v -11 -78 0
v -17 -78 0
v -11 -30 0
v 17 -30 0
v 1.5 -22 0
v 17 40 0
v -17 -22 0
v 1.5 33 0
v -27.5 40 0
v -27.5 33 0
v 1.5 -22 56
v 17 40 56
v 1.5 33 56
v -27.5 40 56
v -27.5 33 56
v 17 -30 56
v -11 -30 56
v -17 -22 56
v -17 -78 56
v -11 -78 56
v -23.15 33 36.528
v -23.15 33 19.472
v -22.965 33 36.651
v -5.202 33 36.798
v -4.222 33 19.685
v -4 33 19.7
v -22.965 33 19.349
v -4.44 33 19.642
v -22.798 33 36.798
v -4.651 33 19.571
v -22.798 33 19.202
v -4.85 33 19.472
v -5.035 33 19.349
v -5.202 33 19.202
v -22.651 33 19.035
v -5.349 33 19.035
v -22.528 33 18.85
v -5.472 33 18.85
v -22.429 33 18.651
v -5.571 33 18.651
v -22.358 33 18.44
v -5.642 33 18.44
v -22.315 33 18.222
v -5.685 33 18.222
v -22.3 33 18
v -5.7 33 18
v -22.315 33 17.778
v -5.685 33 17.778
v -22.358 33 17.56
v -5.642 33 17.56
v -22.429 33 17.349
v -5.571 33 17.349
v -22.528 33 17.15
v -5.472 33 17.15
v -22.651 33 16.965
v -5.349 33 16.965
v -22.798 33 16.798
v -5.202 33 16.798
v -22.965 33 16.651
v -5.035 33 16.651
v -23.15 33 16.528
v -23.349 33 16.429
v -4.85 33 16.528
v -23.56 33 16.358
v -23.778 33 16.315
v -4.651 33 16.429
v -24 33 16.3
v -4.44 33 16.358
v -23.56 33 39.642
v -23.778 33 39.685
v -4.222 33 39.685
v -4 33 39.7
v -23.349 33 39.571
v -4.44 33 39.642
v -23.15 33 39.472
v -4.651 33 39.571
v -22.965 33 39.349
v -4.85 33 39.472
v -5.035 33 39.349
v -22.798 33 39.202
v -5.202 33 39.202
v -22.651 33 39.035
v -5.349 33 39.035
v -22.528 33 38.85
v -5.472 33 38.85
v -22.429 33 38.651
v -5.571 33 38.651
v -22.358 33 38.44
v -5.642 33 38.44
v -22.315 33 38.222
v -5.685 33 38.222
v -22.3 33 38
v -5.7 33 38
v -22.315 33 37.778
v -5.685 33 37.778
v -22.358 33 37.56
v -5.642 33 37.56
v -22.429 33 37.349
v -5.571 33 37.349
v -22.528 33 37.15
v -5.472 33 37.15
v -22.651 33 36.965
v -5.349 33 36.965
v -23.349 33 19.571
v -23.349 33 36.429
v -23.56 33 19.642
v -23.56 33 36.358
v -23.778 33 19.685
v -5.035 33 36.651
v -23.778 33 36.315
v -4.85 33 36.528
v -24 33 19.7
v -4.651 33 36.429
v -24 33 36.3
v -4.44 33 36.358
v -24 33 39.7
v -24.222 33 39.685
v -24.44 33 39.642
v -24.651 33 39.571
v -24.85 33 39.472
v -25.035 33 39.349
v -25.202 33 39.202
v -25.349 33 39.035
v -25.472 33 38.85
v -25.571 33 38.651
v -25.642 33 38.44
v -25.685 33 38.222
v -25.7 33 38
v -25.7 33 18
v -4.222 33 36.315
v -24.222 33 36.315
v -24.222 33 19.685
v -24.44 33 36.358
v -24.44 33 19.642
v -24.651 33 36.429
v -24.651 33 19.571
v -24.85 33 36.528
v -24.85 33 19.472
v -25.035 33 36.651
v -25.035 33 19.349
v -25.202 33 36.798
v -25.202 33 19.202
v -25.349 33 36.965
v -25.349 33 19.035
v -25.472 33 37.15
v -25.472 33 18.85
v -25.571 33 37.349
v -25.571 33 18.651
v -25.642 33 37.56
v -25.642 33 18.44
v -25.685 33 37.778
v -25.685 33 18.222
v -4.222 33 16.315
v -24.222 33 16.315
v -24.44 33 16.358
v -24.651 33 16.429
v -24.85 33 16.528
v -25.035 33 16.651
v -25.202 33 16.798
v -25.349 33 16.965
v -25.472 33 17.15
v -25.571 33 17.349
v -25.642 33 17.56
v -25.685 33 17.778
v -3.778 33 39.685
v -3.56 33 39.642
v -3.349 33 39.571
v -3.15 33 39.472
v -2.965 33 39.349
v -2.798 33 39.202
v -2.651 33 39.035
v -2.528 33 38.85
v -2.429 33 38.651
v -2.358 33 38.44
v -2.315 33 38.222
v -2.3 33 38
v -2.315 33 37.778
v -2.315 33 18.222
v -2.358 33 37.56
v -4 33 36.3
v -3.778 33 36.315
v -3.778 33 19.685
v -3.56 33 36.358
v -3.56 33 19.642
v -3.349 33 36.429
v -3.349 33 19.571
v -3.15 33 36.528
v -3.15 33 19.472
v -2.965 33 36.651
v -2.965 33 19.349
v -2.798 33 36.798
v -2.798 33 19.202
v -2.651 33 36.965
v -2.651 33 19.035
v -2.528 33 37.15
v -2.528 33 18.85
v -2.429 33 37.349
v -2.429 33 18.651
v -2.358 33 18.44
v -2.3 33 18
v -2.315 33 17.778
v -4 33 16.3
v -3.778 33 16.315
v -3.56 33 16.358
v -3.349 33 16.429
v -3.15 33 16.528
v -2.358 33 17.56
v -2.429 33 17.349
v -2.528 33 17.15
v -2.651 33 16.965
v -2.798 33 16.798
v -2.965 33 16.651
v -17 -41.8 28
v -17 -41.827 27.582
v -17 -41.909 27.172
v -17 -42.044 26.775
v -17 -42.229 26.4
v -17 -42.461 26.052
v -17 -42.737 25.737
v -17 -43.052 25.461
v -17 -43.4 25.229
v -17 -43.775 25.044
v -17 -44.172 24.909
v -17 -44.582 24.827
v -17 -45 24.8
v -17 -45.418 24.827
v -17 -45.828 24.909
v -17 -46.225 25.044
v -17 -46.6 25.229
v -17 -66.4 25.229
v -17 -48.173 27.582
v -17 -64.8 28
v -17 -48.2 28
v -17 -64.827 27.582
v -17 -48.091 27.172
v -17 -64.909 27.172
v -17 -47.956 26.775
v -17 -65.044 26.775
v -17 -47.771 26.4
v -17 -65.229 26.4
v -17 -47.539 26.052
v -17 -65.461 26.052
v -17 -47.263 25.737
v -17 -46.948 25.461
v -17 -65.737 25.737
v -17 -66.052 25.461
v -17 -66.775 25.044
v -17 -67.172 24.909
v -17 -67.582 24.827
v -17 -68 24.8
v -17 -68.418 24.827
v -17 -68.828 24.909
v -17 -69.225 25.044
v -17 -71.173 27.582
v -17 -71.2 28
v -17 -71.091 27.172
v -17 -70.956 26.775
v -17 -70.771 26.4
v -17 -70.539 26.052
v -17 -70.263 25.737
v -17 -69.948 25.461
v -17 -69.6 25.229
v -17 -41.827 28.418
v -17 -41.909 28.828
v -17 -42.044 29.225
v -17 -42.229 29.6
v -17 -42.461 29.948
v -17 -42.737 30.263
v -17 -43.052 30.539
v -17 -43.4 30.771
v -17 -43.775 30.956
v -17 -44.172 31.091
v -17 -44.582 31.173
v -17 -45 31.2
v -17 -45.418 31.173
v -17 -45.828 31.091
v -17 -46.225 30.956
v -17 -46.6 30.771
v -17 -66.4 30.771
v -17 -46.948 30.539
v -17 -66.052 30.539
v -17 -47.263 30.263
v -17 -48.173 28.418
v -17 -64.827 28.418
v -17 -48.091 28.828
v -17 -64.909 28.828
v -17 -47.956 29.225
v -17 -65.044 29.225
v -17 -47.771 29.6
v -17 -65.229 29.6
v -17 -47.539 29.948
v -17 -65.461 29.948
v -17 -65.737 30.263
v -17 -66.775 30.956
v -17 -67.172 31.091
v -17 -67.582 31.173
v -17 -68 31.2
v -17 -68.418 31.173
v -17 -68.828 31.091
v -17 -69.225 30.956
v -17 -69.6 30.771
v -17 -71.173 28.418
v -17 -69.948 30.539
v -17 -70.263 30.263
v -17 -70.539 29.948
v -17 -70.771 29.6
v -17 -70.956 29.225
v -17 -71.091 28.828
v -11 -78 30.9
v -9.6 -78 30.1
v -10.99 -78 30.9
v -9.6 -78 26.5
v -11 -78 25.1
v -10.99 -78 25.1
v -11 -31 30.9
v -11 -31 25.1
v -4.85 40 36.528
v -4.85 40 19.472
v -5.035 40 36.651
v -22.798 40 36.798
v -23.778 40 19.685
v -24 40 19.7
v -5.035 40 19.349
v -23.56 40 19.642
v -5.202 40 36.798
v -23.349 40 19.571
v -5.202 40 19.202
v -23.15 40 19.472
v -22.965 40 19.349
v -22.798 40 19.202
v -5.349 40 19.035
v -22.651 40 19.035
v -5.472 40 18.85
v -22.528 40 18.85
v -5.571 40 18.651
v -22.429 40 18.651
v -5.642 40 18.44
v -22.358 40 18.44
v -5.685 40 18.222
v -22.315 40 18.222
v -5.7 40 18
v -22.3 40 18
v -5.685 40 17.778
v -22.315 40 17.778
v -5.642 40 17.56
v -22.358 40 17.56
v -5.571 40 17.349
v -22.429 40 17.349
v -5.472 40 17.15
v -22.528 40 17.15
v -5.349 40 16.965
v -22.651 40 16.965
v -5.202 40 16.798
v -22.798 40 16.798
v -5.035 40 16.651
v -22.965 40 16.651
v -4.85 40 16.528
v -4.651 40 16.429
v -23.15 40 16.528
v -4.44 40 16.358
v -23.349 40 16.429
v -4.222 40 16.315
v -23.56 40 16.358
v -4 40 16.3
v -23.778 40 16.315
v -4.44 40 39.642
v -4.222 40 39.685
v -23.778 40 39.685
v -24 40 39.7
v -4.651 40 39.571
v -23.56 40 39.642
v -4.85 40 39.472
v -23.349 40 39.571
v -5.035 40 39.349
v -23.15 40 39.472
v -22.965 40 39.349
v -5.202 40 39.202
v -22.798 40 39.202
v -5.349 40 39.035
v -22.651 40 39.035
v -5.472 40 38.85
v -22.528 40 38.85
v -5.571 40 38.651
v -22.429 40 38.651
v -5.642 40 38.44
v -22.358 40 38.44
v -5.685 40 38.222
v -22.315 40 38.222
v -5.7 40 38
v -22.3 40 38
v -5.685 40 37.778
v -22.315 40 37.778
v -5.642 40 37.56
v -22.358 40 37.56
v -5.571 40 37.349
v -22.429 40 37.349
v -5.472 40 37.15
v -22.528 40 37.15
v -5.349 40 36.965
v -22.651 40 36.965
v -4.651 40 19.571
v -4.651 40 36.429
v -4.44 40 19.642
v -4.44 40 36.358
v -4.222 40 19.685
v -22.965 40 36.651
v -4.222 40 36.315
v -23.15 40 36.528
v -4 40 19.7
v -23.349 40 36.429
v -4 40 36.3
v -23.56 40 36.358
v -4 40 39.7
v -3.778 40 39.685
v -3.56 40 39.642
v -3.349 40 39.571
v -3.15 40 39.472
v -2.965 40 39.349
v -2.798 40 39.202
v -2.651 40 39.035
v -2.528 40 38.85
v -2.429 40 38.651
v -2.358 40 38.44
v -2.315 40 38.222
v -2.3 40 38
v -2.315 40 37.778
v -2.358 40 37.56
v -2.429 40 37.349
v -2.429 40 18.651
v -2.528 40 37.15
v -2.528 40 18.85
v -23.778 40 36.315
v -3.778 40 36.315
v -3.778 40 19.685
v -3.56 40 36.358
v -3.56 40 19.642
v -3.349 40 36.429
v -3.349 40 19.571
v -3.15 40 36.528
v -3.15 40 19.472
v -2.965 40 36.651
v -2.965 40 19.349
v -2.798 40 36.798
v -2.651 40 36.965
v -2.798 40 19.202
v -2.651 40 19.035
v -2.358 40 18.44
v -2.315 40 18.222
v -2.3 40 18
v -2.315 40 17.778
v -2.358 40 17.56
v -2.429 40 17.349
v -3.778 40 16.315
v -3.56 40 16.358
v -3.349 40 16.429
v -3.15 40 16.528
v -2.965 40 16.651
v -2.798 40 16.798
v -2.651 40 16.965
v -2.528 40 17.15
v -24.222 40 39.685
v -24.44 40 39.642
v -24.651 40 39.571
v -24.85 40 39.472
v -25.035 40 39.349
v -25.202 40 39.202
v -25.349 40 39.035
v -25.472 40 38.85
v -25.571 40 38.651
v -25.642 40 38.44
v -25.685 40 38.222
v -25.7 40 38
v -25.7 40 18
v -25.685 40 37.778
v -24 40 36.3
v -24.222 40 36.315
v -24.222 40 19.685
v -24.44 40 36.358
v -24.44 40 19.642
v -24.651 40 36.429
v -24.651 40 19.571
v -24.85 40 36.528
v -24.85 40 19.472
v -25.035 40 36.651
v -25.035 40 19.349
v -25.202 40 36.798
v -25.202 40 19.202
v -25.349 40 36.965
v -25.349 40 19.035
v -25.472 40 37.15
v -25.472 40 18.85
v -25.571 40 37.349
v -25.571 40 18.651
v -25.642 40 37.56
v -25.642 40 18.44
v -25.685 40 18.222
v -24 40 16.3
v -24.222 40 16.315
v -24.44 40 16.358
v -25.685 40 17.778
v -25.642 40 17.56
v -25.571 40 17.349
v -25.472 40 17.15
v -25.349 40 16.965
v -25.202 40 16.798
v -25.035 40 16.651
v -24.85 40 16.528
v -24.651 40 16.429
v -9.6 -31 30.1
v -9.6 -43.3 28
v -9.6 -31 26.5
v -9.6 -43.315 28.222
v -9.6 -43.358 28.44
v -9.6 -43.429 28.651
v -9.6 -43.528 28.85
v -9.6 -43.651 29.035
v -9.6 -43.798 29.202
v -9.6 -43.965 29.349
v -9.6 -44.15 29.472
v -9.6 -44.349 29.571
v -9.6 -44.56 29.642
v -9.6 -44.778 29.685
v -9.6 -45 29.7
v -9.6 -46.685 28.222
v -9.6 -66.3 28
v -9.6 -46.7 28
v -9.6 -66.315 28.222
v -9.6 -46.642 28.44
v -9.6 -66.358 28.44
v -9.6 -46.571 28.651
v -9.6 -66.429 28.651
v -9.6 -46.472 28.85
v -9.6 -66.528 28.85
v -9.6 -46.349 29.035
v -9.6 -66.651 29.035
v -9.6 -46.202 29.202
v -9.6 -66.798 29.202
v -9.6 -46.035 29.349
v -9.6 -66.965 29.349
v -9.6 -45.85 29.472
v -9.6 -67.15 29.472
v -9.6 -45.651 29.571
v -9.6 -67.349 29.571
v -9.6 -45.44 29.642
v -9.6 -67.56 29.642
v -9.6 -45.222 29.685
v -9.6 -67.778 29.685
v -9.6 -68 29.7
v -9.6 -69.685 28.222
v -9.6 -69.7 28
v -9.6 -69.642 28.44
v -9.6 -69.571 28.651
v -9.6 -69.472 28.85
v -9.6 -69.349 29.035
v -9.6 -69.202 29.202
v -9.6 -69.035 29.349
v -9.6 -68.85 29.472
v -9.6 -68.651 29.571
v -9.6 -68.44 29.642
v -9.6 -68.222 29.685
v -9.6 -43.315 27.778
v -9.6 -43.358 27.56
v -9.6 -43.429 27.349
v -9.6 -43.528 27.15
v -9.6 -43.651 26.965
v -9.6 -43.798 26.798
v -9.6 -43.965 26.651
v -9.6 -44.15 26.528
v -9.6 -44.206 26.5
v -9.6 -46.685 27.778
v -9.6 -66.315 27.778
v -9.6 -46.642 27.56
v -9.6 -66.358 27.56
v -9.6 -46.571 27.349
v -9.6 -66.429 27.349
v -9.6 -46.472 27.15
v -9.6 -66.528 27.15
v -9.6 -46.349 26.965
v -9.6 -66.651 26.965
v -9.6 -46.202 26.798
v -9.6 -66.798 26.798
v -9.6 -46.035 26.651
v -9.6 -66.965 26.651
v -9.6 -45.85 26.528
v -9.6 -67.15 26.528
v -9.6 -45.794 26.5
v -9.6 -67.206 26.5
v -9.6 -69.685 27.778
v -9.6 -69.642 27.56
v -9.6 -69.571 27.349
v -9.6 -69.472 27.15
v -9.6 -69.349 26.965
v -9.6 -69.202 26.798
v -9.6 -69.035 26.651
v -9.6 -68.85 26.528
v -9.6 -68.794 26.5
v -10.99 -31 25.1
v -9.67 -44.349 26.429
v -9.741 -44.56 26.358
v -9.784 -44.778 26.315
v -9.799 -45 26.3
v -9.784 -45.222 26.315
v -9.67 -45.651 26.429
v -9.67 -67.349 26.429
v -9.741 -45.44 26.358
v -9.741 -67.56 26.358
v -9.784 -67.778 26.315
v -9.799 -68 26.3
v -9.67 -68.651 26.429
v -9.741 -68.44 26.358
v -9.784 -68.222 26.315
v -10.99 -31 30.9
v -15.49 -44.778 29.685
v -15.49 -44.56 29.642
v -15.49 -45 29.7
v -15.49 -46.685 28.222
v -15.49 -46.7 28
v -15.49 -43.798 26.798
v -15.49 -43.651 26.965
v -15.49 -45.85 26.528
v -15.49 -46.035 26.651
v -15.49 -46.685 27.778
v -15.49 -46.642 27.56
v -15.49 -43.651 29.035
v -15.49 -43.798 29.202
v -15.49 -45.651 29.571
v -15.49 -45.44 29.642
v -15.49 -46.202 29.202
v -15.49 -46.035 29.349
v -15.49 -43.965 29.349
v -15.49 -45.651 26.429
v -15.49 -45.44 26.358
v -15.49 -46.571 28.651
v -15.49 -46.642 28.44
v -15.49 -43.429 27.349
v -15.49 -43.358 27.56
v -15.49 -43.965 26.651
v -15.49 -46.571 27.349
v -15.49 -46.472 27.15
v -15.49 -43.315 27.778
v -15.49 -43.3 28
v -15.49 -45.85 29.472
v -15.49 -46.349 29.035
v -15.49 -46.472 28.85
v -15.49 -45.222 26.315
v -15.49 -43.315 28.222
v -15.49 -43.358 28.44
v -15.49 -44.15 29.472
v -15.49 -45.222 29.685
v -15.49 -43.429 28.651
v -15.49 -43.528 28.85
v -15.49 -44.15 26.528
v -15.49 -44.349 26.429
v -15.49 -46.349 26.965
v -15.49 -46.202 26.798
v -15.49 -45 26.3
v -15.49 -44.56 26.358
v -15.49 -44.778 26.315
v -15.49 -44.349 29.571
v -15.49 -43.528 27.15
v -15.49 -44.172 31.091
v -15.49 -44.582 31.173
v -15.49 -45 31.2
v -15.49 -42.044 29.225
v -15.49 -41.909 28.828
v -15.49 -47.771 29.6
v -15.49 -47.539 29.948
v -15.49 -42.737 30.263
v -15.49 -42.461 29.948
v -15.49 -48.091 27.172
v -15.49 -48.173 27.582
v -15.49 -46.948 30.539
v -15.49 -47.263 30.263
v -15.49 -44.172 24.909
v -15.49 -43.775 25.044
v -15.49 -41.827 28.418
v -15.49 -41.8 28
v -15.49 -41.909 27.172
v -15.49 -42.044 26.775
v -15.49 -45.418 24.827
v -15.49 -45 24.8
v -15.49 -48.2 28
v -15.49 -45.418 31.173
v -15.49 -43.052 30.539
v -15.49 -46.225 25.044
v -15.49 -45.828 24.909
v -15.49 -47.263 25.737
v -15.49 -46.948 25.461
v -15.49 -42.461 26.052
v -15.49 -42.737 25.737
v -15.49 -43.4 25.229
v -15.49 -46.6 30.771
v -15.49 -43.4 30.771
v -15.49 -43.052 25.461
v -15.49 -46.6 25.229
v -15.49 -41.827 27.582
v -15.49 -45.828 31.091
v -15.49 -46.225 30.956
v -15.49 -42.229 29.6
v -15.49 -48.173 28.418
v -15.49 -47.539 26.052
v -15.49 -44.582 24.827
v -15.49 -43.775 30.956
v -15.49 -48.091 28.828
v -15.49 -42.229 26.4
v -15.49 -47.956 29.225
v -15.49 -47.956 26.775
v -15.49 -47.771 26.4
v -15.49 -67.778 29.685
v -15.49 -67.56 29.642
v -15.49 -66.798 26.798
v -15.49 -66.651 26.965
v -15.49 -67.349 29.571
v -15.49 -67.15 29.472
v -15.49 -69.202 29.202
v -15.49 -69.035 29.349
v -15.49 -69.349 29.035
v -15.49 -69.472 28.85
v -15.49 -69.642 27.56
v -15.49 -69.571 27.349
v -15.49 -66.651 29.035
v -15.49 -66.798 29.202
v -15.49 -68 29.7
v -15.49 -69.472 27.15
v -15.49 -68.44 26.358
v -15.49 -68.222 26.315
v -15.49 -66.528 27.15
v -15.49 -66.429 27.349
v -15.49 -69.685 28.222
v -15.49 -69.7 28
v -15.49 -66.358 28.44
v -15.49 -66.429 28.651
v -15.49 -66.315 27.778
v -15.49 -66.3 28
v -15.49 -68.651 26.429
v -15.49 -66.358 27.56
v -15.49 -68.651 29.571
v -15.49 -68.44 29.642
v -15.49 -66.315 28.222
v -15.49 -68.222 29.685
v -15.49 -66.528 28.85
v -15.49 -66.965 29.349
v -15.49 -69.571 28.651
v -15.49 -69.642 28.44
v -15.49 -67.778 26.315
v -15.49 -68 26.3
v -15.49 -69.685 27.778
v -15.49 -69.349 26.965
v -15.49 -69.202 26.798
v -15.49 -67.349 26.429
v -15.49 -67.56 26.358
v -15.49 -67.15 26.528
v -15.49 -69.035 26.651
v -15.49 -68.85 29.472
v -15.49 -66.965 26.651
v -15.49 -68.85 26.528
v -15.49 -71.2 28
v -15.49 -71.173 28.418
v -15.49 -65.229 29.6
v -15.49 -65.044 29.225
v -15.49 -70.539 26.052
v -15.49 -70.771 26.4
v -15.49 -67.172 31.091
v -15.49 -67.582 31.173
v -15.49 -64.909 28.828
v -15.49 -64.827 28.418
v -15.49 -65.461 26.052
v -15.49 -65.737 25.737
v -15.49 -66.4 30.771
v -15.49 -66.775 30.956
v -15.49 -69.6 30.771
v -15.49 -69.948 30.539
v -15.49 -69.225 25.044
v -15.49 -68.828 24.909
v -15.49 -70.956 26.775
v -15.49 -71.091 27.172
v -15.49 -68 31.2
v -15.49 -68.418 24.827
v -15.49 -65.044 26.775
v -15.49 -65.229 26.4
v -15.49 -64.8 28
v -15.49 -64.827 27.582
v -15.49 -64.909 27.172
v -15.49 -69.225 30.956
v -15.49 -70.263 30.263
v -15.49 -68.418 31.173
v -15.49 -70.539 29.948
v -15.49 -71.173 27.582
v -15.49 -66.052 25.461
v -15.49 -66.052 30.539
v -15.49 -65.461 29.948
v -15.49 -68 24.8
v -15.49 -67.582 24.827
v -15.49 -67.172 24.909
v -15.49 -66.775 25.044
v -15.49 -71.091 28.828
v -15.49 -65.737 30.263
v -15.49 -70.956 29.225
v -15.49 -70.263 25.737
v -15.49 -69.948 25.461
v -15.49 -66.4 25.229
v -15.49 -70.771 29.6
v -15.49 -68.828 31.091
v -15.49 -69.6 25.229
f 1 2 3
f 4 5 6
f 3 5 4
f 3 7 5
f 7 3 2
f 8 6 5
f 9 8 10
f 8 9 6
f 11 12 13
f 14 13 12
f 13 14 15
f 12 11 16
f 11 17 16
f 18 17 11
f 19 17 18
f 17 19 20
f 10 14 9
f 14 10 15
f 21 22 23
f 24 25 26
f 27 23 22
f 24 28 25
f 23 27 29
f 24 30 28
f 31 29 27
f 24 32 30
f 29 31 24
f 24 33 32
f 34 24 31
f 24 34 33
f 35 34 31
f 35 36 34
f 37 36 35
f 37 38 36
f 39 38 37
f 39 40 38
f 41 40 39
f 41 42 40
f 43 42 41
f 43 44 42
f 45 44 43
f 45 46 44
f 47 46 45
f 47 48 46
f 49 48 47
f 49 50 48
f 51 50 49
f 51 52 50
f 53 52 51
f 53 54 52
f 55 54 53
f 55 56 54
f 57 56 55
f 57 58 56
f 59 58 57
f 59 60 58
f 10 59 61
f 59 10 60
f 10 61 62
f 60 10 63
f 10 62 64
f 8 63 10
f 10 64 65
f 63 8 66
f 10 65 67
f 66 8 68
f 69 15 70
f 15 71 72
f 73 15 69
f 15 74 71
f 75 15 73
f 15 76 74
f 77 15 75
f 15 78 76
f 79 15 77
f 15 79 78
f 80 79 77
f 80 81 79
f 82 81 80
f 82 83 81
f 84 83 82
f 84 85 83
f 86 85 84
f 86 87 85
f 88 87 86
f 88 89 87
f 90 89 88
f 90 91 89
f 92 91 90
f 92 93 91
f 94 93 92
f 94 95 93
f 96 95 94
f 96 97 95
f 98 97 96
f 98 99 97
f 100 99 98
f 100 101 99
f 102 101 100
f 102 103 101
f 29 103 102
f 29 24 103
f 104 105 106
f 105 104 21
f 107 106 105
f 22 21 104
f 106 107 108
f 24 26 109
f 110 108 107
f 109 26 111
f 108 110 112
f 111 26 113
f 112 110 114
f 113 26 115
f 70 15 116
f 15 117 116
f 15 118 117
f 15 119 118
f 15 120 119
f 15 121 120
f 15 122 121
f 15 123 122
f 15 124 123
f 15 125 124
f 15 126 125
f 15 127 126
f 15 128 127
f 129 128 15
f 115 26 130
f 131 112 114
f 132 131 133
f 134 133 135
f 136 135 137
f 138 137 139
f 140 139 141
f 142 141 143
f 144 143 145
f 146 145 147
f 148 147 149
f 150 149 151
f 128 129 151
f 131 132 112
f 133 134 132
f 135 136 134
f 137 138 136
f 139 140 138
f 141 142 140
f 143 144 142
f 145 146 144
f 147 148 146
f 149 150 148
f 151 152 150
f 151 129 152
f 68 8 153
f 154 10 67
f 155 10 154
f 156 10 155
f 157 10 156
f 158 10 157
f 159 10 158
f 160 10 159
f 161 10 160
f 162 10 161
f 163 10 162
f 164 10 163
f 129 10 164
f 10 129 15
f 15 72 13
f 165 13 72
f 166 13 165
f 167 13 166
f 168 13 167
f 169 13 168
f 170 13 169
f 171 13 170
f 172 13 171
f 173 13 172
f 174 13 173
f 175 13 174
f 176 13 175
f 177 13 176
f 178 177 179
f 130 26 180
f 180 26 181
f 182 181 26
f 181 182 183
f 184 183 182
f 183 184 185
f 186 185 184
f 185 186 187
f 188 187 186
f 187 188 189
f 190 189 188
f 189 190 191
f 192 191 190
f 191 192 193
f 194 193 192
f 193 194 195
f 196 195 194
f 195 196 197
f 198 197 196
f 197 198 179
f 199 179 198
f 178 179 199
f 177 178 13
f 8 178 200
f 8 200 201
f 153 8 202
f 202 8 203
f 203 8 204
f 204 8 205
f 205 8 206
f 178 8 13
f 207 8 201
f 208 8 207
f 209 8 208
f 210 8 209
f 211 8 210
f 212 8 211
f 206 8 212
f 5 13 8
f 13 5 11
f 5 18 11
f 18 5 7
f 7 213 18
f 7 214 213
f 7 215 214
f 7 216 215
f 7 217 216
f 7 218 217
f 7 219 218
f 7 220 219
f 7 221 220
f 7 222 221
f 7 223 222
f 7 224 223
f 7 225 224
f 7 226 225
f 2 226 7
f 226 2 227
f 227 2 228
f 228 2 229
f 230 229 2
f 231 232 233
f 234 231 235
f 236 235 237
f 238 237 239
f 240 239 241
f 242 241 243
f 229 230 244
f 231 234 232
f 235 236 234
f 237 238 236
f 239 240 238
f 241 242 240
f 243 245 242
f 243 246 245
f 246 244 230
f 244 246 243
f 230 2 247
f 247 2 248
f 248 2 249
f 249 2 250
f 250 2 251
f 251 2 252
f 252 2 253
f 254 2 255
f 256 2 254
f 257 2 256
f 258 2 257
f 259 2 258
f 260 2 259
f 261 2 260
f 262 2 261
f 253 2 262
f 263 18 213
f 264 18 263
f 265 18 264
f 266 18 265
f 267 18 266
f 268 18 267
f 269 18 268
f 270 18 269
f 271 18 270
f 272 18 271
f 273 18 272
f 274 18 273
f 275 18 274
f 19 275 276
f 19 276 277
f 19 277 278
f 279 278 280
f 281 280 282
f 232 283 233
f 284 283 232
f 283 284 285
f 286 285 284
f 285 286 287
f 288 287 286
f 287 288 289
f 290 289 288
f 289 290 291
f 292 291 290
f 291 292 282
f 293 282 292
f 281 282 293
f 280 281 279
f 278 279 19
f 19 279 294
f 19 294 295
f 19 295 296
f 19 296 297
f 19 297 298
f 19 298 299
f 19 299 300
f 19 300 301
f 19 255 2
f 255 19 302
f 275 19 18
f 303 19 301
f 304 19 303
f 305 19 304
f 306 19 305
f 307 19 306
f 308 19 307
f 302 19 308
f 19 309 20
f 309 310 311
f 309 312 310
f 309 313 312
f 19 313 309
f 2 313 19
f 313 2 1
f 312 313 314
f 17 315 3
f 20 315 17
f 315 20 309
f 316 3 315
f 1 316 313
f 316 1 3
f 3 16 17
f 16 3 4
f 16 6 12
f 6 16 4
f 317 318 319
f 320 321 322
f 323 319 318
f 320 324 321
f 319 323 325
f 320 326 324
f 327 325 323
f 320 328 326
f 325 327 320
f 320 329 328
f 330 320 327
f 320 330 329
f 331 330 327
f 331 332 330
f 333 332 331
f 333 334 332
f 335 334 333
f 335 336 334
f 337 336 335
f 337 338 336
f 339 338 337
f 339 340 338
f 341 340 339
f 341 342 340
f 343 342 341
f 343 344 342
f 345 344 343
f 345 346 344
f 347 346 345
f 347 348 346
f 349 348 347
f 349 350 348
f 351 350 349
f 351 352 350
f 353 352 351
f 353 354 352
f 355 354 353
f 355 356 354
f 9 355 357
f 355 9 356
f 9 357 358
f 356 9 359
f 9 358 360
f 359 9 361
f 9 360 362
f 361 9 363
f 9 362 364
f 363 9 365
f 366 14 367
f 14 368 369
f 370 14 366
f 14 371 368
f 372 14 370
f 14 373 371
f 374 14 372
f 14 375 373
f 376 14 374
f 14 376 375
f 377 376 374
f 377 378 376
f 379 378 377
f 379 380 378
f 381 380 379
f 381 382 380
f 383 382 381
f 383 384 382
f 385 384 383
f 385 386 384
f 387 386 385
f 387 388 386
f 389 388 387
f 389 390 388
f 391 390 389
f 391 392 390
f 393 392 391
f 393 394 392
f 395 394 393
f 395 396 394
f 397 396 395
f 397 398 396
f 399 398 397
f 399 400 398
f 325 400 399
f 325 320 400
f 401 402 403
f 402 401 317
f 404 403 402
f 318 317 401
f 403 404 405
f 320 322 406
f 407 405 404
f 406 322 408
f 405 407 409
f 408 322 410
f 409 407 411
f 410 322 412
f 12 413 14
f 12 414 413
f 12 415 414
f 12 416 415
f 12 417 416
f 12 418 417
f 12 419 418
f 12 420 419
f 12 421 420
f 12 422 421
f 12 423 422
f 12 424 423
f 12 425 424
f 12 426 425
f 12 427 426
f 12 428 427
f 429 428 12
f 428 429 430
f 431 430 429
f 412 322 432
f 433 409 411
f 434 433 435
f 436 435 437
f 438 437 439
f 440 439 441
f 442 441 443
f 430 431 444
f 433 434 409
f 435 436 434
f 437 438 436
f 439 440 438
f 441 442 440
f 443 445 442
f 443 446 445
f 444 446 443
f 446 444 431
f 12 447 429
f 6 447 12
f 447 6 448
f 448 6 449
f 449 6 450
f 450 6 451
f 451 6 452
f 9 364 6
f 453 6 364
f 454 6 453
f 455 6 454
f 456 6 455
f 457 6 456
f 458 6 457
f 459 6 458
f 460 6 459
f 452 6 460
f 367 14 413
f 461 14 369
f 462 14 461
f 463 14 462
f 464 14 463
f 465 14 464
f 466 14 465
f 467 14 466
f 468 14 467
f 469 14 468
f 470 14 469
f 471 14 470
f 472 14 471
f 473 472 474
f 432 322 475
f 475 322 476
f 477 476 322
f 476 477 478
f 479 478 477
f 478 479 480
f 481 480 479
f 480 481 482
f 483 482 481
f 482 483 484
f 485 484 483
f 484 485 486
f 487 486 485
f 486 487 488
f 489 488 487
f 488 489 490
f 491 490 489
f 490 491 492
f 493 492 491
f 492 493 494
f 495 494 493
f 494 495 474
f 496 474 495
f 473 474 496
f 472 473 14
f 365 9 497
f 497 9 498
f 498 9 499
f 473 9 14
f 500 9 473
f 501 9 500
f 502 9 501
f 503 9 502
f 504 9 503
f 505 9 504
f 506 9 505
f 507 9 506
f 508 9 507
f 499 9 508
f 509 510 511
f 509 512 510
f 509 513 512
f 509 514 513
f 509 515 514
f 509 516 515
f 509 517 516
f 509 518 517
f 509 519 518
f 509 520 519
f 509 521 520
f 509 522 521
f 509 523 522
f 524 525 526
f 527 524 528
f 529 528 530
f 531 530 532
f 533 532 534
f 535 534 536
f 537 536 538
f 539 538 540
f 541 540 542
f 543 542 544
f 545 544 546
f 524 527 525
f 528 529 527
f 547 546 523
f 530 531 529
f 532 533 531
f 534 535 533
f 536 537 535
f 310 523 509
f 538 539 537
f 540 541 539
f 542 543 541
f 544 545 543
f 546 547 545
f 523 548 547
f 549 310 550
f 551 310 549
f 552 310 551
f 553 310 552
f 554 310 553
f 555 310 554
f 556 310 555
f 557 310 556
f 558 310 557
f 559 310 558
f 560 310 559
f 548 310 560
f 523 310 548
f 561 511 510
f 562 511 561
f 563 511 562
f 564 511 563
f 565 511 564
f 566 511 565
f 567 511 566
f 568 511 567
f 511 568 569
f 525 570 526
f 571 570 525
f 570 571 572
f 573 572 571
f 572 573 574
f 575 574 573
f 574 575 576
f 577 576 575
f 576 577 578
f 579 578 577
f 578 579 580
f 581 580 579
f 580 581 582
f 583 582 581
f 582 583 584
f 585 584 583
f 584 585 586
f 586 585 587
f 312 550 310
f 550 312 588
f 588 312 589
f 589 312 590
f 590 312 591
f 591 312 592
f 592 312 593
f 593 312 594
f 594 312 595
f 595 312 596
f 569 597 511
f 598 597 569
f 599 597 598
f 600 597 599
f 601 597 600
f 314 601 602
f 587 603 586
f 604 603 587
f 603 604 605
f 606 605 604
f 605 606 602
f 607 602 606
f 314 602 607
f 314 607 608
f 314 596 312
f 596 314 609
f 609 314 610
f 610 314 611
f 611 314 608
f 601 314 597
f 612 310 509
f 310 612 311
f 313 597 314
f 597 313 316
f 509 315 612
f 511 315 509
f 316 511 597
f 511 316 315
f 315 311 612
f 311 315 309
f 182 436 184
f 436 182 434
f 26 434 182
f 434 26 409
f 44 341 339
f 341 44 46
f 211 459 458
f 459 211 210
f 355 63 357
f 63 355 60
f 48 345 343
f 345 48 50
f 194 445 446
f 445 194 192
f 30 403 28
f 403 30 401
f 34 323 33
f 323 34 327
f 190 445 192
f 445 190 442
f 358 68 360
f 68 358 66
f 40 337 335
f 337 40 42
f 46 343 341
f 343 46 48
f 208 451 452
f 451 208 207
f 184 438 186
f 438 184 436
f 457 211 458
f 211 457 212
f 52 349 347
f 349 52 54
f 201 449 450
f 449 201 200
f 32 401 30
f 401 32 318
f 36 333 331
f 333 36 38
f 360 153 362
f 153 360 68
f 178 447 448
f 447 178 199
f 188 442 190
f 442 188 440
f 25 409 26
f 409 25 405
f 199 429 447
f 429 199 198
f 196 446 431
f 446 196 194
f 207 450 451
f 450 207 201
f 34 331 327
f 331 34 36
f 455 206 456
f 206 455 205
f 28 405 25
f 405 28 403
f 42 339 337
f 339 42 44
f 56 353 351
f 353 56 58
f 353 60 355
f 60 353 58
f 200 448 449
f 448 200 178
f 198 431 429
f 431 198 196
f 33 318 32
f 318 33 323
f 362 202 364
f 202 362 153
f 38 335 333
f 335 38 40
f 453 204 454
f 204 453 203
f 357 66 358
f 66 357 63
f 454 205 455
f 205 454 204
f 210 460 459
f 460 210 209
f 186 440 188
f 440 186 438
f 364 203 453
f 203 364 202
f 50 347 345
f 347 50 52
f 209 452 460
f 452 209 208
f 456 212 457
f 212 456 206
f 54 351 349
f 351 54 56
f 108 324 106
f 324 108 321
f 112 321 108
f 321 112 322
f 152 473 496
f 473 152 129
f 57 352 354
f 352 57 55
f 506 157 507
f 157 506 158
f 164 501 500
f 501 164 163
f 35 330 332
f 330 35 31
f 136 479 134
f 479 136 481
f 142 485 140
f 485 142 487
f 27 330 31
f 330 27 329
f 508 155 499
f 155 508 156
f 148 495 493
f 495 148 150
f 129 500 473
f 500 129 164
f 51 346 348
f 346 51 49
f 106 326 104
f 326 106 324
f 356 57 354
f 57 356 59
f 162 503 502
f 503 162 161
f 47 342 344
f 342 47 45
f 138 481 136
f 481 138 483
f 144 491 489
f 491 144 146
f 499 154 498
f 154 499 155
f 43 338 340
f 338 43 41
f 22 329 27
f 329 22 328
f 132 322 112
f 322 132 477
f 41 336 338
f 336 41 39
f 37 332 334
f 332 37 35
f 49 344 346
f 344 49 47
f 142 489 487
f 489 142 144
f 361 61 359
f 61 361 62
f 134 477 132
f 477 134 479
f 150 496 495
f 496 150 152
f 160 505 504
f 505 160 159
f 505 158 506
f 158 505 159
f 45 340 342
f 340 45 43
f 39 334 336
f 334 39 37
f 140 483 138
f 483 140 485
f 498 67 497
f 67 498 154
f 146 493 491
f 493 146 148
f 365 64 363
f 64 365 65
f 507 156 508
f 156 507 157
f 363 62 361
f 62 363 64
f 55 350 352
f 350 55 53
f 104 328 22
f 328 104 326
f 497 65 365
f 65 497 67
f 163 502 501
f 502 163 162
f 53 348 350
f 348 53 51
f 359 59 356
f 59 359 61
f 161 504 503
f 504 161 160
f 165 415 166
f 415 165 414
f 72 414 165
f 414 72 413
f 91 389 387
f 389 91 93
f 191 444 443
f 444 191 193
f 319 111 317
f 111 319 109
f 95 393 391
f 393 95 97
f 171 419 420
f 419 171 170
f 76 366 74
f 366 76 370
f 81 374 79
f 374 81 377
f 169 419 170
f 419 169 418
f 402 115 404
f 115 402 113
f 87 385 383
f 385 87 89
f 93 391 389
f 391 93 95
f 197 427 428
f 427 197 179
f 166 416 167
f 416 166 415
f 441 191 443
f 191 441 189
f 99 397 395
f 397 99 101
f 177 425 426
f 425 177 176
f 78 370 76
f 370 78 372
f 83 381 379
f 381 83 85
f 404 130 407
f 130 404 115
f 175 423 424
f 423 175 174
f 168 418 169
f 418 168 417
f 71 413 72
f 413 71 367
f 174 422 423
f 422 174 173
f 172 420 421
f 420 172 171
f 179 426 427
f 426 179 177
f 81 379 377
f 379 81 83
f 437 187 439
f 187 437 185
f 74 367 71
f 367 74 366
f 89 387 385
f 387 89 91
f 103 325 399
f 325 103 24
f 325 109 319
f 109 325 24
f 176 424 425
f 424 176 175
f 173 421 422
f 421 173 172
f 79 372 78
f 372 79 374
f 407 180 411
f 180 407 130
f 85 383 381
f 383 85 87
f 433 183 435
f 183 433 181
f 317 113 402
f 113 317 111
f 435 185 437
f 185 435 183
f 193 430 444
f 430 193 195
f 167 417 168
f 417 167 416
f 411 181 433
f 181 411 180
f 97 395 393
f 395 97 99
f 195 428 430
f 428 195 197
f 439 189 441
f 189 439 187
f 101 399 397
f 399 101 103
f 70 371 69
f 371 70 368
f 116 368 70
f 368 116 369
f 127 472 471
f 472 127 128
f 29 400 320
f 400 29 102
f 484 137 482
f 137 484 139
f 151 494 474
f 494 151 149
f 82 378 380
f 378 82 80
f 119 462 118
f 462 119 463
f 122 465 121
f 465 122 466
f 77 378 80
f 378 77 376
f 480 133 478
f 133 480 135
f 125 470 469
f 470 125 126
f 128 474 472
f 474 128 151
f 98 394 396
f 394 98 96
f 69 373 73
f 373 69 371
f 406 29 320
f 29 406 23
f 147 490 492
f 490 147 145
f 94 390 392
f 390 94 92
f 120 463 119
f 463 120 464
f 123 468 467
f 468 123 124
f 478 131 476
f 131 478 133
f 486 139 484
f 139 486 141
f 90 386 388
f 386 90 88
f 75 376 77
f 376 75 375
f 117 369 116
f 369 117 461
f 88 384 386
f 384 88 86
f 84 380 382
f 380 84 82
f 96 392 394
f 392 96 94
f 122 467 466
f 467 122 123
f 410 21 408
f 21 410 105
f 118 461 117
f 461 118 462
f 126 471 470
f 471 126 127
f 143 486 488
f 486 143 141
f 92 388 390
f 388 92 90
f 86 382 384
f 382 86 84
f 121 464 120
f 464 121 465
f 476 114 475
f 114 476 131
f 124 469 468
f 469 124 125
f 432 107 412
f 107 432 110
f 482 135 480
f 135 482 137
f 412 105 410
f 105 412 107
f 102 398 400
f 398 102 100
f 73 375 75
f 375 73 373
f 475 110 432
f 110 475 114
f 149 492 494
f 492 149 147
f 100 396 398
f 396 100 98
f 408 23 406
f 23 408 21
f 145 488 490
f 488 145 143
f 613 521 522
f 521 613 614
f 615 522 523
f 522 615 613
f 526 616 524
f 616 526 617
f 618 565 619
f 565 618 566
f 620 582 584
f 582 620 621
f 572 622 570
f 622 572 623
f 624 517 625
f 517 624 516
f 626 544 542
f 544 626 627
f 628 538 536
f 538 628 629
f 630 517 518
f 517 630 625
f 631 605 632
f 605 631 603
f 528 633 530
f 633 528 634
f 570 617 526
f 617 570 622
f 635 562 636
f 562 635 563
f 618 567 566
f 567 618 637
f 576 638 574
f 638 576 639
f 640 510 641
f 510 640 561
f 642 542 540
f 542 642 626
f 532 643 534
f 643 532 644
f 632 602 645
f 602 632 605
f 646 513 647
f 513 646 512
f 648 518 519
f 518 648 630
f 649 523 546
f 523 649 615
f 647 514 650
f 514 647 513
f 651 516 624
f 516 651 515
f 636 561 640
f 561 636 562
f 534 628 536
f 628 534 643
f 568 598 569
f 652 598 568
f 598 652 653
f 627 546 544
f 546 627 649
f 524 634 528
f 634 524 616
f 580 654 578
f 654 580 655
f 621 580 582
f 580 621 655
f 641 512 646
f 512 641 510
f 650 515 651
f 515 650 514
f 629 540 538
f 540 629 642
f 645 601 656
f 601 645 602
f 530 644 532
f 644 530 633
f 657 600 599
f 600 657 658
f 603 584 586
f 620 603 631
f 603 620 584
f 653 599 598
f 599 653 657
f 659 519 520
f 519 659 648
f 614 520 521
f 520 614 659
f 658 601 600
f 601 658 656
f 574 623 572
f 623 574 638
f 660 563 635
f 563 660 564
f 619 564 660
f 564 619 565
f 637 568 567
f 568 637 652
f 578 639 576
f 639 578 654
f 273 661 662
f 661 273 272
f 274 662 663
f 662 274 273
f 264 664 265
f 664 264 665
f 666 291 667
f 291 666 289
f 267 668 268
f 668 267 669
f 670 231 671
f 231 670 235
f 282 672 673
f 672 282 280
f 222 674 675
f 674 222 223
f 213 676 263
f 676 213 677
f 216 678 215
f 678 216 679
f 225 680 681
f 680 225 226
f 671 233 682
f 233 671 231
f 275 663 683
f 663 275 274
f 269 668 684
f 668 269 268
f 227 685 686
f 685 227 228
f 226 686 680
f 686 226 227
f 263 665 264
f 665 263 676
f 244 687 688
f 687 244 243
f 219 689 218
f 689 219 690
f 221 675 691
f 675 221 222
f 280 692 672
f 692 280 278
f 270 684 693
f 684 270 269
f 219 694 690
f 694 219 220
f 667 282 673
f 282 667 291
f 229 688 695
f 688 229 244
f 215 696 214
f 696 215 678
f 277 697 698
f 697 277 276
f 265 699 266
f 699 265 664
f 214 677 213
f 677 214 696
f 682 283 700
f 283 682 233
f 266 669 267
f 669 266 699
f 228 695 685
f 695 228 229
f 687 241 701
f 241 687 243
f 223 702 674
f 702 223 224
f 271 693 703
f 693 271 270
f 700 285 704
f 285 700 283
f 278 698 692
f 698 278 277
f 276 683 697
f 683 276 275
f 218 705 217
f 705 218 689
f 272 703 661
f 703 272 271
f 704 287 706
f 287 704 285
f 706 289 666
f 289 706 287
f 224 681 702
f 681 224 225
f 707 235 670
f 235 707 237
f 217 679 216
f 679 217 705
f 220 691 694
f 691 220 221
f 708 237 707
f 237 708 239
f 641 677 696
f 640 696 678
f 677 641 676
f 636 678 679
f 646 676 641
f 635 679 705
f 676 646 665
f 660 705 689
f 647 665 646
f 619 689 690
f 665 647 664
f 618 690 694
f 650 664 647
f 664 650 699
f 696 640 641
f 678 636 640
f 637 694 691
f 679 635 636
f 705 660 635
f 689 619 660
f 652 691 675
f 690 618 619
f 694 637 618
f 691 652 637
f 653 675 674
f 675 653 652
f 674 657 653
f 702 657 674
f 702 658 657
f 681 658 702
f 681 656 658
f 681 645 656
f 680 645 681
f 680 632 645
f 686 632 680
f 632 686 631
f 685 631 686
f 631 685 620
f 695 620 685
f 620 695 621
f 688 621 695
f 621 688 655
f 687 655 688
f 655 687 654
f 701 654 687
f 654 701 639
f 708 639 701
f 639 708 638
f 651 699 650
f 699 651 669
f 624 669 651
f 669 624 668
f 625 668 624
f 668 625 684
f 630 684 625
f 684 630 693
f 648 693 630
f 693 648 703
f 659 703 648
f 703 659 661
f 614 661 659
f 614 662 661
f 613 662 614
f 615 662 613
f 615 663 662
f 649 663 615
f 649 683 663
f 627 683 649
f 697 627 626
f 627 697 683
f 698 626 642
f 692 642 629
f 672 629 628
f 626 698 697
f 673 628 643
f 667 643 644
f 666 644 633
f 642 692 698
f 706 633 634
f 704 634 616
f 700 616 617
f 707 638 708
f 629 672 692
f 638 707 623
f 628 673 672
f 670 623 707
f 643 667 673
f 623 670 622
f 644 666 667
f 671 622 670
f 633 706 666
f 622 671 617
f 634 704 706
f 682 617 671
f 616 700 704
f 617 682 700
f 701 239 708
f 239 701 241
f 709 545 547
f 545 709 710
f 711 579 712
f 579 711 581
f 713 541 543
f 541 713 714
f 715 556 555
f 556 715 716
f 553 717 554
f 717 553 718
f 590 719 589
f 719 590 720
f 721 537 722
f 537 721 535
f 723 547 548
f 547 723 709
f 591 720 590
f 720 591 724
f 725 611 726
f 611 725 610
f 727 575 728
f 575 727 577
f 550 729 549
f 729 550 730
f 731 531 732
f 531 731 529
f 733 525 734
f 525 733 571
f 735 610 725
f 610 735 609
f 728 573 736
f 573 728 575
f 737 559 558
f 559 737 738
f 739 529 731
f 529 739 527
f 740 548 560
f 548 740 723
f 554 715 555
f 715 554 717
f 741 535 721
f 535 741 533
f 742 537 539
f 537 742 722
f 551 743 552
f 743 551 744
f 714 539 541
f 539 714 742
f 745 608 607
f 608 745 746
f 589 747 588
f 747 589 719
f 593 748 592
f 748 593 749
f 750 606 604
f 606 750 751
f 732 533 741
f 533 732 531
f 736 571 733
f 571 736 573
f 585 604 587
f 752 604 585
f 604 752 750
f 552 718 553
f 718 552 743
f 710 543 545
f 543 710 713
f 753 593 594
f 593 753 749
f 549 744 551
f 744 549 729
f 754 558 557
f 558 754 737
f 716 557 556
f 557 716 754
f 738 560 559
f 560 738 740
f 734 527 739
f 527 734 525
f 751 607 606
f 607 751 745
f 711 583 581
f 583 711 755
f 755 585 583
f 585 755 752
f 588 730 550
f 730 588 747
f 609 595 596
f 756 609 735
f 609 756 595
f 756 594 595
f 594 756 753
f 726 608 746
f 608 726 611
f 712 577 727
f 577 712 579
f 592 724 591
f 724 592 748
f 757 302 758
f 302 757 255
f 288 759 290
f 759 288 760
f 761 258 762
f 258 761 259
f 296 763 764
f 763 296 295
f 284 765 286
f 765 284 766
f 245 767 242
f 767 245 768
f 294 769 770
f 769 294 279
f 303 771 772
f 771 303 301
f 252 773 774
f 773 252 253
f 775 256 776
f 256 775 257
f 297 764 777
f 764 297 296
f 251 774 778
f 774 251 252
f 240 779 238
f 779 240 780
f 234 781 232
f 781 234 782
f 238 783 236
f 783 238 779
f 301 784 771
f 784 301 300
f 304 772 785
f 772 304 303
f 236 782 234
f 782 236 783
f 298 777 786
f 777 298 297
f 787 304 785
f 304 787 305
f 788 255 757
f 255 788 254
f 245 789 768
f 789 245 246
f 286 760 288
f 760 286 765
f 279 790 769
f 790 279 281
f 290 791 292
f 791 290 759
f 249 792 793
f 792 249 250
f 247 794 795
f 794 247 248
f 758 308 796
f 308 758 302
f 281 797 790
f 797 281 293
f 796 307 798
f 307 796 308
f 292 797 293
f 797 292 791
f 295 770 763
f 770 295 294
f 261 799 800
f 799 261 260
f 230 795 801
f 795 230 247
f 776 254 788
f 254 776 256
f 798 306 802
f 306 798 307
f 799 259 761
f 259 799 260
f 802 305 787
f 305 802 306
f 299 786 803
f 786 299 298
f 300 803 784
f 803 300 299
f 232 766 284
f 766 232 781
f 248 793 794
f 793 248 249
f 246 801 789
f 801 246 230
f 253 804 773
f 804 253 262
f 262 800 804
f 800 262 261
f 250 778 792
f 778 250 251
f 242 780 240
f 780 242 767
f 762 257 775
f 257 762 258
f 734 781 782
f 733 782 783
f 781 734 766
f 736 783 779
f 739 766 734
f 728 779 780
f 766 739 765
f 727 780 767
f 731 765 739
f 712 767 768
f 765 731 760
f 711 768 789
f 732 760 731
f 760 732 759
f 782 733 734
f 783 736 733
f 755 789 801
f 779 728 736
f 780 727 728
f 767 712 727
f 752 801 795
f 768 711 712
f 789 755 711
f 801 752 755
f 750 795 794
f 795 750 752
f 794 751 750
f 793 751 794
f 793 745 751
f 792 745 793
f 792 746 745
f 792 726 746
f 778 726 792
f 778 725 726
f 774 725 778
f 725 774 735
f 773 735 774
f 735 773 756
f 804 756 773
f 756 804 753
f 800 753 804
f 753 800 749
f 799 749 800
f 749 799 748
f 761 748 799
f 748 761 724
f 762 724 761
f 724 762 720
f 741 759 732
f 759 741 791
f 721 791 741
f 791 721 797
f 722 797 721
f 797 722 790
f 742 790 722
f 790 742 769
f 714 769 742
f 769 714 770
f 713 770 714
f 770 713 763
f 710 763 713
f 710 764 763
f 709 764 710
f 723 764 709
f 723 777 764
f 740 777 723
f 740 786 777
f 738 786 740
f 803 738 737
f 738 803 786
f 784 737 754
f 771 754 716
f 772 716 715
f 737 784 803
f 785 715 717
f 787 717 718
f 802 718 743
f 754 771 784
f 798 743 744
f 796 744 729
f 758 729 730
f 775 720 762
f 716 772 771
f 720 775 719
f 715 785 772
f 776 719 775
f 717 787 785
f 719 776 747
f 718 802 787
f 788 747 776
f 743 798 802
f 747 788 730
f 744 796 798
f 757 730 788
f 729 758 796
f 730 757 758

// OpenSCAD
// Carriage bracket for the bench scope gantry
// Joins the X carriage (on the front of the shelf lip) to the boom (behind the lip, under the shelf).
// It drops from the carriage, passes under the lip's curl, rises behind it, and ends in a plate
// that sits on top of the boom.
// Hardware: 4x M3x10 (front plate to the MGN12H carriage), 2x M3x10 + T-nuts (top plate to boom).
// Assembly order: bolt the boom to the top plate on the bench (those two screws can't be reached
// once it's under the shelf), then hang the assembly on the carriage with the four front screws.
//
// Frame: X along the shelf, Y toward you, Z up.
// Origin: outer surface of the lip's front face (Y=0), bottom of the lip (Z=0).

/* [Shelf lip, measured] */
curl_depth  = 20;
shelf_under = 26;     // underside of the shelf above the lip bottom

/* [X axis stack on the lip face] */
ext         = 20;     // backer extrusion, bolted straight to the lip face
ext_z0      = 4;      // its bottom edge above the lip bottom (holes drilled 14 mm up)
stack       = 13;     // MGN12H: rail seat to carriage top
car_w       = 27;     // carriage width (vertical here)
pat         = 20;     // carriage hole pattern

/* [Bracket] */
width       = 56;
plate_t     = 7;      // front plate: M3x10 reaches 3 mm into the carriage
curl_clear  = 1.5;    // strap clearance under the lip
strap_bot   = -17;    // underside of the strap. The head passes 2.5 mm below this
riser_gap   = 2;      // riser clearance behind the curl's edge
riser_t     = 8;

/* [Boom] */
boom        = 20;
boom_top    = 11;     // boom top face height. Matches the back slider (boom center 5 below back rail center)
top_t       = 6;
top_len     = 48;     // overlap on the boom
boom_screws = [15, 38];   // from the boom's front end
key_w       = 5.8;    // key into the boom's top slot
key_h       = 1.4;

/* [Hardware] */
m3_clear    = 3.4;
head_d      = 6.4;
head_cb     = 1.5;    // counterbore in the top plate: leaves 4.5 mm under the head

$fn = 48; eps = 0.01;

y_face   = ext + stack;               // carriage mounting face
car_zc   = ext_z0 + ext/2;
y_riser1 = -curl_depth - riser_gap;   // riser front
y_riser0 = y_riser1 - riser_t;        // riser back = boom front end
strap_top = -curl_clear;

module profile() {
  polygon([
    [y_face, car_zc + car_w/2], [y_face + plate_t, car_zc + car_w/2], [y_face + plate_t, strap_bot],
    [y_riser0, strap_bot], [y_riser0, boom_top], [y_riser0 - top_len, boom_top],
    [y_riser0 - top_len, boom_top + top_t], [y_riser1, boom_top + top_t], [y_riser1, strap_top],
    [y_face, strap_top]
  ]);
}

module bracket() {
  difference() {
    union() {
      rotate([90, 0, 90]) translate([0, 0, -width/2]) linear_extrude(width) profile();
      // key into the boom's top slot, chamfered so it prints without support on its side
      hull() {
        translate([-key_w/2, y_riser0 - top_len, boom_top - eps]) cube([key_w, top_len - 1, eps]);
        translate([-key_w/2 + key_h, y_riser0 - top_len, boom_top - key_h]) cube([key_w - 2*key_h + 0.6, top_len - 1, eps]);
      }
    }
    // carriage screws, heads on the front
    for (sx = [-1, 1], sz = [-1, 1]) translate([sx*pat/2, y_face - eps, car_zc + sz*pat/2]) rotate([-90, 0, 0])
      cylinder(d = m3_clear, h = plate_t + 2*eps);
    // boom screws through the top plate
    for (d = boom_screws) translate([0, y_riser0 - d, boom_top - key_h - eps]) {
      cylinder(d = m3_clear, h = top_t + key_h + 2*eps);
      translate([0, 0, key_h + top_t - head_cb]) cylinder(d = head_d, h = head_cb + 2*eps);
    }
  }
}

// ---------- reference geometry (previews only) ----------
module refs() {
  color("gray", 0.5) {
    translate([-45, -2, 0]) cube([90, 2, 28]);
    translate([-45, -curl_depth, 0]) cube([90, curl_depth, 2]);
    translate([-45, -150, shelf_under]) cube([90, 150, 2]);
  }
  color("silver") translate([-45, 0, ext_z0]) cube([90, ext, ext]);
  color("dimgray") translate([-45, ext, car_zc - 6]) cube([90, 8, 12]);
  color("dimgray") translate([-22.7, ext + 3, car_zc - car_w/2]) cube([45.4, stack - 3, car_w]);
  color("lightgray") translate([-boom/2, y_riser0 - 150, boom_top - boom]) cube([boom, 150, boom]);
  color("dimgray") translate([-6, y_riser0 - 150, boom_top - boom - 8]) cube([12, 150, 8]);
}

mode = "print";   // "print" | "assembly"
if (mode == "assembly") { color("royalblue") bracket(); refs(); }
else rotate([0, -90, 0]) translate([width/2, 0, 0]) bracket();   // on its side, no supports
